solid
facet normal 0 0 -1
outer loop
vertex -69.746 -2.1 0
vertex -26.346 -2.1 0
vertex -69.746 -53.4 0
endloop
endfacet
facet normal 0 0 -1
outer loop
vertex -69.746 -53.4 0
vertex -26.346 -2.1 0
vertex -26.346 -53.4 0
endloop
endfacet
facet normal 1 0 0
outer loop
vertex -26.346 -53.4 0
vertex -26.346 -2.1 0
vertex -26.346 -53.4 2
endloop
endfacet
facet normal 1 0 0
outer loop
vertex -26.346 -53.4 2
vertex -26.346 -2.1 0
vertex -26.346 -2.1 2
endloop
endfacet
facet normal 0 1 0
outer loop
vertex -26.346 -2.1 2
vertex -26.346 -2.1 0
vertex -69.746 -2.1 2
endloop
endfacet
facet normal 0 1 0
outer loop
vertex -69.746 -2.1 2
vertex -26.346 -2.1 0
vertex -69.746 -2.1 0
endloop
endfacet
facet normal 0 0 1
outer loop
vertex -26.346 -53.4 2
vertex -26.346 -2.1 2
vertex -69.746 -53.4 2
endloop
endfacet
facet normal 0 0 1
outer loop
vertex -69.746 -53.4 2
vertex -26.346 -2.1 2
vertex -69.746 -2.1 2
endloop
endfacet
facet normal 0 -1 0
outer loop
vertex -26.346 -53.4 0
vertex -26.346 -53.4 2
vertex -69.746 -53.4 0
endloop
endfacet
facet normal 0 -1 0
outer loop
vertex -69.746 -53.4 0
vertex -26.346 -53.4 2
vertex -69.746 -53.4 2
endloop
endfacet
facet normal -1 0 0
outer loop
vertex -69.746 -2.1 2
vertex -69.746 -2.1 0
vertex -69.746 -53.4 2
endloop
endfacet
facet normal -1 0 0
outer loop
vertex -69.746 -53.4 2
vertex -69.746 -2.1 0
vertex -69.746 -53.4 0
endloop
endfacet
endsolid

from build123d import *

# Parameters (mm, degrees)
BOSS_EXTRUDE1_DEPTH = 2
CUT_EXTRUDE1_DEPTH  = 104.743351649
SKETCH4_W           = 67.1
SKETCH4_H           = 9
BOSS_EXTRUDE2_DEPTH = 2
SKETCH5_W           = 23.5
SKETCH5_H           = 51.3
CUT_EXTRUDE2_DEPTH  = 10
SKETCH6_W           = 0.2
SKETCH6_H           = 51.3
CUT_EXTRUDE3_DEPTH  = 10


with BuildPart() as part:
    # Sketch2 → Boss-Extrude1 (new body)
    with BuildSketch(Plane.XY):
        Polygon((-88.945731411, -6.4), (-88.945731411, -1.9), (-93.645731411, -1.9), (-93.645731411, -44.6), (-26.145731411, -44.6), (-26.145731411, -1.9), (-70.145731411, -1.9), (-70.145731411, -6.4), align=None)
    extrude(amount=BOSS_EXTRUDE1_DEPTH)

    # Sketch3 → Cut-Extrude1 (cut, through all)
    with BuildSketch(Plane.XY.offset(2)):
        Polygon((-88.945731411, -1.9), (-93.645731411, -1.9), (-93.645731411, -44.6), (-26.145731411, -44.6), (-26.145731411, -1.9), (-70.145731411, -1.9), (-70.145731411, -6.4), (-88.945731411, -6.4), align=None)
        Polygon((-89.145731411, -2.1), (-93.445731411, -2.1), (-93.445731411, -44.4), (-26.345731411, -44.4), (-26.345731411, -2.1), (-69.945731411, -2.1), (-69.945731411, -6.6), (-89.145731411, -6.6), align=None, mode=Mode.SUBTRACT)
    extrude(amount=-CUT_EXTRUDE1_DEPTH, mode=Mode.SUBTRACT)

    # Sketch4 → Boss-Extrude2 (add)
    with BuildSketch(Plane.XY.offset(2)):
        with Locations((-59.895731411, -48.9)):
            Rectangle(SKETCH4_W, SKETCH4_H)
    extrude(amount=-BOSS_EXTRUDE2_DEPTH)

    # Sketch5 → Cut-Extrude2 (cut)
    with BuildSketch(Plane.XY.offset(2)):
        with Locations((-81.695731411, -27.75)):
            Rectangle(SKETCH5_W, SKETCH5_H)
    extrude(amount=-CUT_EXTRUDE2_DEPTH, mode=Mode.SUBTRACT)

    # Sketch6 → Cut-Extrude3 (cut)
    with BuildSketch(Plane.XY.offset(2)):
        with Locations((-69.845731411, -27.75)):
            Rectangle(SKETCH6_W, SKETCH6_H)
    extrude(amount=-CUT_EXTRUDE3_DEPTH, mode=Mode.SUBTRACT)


solid = part.part
